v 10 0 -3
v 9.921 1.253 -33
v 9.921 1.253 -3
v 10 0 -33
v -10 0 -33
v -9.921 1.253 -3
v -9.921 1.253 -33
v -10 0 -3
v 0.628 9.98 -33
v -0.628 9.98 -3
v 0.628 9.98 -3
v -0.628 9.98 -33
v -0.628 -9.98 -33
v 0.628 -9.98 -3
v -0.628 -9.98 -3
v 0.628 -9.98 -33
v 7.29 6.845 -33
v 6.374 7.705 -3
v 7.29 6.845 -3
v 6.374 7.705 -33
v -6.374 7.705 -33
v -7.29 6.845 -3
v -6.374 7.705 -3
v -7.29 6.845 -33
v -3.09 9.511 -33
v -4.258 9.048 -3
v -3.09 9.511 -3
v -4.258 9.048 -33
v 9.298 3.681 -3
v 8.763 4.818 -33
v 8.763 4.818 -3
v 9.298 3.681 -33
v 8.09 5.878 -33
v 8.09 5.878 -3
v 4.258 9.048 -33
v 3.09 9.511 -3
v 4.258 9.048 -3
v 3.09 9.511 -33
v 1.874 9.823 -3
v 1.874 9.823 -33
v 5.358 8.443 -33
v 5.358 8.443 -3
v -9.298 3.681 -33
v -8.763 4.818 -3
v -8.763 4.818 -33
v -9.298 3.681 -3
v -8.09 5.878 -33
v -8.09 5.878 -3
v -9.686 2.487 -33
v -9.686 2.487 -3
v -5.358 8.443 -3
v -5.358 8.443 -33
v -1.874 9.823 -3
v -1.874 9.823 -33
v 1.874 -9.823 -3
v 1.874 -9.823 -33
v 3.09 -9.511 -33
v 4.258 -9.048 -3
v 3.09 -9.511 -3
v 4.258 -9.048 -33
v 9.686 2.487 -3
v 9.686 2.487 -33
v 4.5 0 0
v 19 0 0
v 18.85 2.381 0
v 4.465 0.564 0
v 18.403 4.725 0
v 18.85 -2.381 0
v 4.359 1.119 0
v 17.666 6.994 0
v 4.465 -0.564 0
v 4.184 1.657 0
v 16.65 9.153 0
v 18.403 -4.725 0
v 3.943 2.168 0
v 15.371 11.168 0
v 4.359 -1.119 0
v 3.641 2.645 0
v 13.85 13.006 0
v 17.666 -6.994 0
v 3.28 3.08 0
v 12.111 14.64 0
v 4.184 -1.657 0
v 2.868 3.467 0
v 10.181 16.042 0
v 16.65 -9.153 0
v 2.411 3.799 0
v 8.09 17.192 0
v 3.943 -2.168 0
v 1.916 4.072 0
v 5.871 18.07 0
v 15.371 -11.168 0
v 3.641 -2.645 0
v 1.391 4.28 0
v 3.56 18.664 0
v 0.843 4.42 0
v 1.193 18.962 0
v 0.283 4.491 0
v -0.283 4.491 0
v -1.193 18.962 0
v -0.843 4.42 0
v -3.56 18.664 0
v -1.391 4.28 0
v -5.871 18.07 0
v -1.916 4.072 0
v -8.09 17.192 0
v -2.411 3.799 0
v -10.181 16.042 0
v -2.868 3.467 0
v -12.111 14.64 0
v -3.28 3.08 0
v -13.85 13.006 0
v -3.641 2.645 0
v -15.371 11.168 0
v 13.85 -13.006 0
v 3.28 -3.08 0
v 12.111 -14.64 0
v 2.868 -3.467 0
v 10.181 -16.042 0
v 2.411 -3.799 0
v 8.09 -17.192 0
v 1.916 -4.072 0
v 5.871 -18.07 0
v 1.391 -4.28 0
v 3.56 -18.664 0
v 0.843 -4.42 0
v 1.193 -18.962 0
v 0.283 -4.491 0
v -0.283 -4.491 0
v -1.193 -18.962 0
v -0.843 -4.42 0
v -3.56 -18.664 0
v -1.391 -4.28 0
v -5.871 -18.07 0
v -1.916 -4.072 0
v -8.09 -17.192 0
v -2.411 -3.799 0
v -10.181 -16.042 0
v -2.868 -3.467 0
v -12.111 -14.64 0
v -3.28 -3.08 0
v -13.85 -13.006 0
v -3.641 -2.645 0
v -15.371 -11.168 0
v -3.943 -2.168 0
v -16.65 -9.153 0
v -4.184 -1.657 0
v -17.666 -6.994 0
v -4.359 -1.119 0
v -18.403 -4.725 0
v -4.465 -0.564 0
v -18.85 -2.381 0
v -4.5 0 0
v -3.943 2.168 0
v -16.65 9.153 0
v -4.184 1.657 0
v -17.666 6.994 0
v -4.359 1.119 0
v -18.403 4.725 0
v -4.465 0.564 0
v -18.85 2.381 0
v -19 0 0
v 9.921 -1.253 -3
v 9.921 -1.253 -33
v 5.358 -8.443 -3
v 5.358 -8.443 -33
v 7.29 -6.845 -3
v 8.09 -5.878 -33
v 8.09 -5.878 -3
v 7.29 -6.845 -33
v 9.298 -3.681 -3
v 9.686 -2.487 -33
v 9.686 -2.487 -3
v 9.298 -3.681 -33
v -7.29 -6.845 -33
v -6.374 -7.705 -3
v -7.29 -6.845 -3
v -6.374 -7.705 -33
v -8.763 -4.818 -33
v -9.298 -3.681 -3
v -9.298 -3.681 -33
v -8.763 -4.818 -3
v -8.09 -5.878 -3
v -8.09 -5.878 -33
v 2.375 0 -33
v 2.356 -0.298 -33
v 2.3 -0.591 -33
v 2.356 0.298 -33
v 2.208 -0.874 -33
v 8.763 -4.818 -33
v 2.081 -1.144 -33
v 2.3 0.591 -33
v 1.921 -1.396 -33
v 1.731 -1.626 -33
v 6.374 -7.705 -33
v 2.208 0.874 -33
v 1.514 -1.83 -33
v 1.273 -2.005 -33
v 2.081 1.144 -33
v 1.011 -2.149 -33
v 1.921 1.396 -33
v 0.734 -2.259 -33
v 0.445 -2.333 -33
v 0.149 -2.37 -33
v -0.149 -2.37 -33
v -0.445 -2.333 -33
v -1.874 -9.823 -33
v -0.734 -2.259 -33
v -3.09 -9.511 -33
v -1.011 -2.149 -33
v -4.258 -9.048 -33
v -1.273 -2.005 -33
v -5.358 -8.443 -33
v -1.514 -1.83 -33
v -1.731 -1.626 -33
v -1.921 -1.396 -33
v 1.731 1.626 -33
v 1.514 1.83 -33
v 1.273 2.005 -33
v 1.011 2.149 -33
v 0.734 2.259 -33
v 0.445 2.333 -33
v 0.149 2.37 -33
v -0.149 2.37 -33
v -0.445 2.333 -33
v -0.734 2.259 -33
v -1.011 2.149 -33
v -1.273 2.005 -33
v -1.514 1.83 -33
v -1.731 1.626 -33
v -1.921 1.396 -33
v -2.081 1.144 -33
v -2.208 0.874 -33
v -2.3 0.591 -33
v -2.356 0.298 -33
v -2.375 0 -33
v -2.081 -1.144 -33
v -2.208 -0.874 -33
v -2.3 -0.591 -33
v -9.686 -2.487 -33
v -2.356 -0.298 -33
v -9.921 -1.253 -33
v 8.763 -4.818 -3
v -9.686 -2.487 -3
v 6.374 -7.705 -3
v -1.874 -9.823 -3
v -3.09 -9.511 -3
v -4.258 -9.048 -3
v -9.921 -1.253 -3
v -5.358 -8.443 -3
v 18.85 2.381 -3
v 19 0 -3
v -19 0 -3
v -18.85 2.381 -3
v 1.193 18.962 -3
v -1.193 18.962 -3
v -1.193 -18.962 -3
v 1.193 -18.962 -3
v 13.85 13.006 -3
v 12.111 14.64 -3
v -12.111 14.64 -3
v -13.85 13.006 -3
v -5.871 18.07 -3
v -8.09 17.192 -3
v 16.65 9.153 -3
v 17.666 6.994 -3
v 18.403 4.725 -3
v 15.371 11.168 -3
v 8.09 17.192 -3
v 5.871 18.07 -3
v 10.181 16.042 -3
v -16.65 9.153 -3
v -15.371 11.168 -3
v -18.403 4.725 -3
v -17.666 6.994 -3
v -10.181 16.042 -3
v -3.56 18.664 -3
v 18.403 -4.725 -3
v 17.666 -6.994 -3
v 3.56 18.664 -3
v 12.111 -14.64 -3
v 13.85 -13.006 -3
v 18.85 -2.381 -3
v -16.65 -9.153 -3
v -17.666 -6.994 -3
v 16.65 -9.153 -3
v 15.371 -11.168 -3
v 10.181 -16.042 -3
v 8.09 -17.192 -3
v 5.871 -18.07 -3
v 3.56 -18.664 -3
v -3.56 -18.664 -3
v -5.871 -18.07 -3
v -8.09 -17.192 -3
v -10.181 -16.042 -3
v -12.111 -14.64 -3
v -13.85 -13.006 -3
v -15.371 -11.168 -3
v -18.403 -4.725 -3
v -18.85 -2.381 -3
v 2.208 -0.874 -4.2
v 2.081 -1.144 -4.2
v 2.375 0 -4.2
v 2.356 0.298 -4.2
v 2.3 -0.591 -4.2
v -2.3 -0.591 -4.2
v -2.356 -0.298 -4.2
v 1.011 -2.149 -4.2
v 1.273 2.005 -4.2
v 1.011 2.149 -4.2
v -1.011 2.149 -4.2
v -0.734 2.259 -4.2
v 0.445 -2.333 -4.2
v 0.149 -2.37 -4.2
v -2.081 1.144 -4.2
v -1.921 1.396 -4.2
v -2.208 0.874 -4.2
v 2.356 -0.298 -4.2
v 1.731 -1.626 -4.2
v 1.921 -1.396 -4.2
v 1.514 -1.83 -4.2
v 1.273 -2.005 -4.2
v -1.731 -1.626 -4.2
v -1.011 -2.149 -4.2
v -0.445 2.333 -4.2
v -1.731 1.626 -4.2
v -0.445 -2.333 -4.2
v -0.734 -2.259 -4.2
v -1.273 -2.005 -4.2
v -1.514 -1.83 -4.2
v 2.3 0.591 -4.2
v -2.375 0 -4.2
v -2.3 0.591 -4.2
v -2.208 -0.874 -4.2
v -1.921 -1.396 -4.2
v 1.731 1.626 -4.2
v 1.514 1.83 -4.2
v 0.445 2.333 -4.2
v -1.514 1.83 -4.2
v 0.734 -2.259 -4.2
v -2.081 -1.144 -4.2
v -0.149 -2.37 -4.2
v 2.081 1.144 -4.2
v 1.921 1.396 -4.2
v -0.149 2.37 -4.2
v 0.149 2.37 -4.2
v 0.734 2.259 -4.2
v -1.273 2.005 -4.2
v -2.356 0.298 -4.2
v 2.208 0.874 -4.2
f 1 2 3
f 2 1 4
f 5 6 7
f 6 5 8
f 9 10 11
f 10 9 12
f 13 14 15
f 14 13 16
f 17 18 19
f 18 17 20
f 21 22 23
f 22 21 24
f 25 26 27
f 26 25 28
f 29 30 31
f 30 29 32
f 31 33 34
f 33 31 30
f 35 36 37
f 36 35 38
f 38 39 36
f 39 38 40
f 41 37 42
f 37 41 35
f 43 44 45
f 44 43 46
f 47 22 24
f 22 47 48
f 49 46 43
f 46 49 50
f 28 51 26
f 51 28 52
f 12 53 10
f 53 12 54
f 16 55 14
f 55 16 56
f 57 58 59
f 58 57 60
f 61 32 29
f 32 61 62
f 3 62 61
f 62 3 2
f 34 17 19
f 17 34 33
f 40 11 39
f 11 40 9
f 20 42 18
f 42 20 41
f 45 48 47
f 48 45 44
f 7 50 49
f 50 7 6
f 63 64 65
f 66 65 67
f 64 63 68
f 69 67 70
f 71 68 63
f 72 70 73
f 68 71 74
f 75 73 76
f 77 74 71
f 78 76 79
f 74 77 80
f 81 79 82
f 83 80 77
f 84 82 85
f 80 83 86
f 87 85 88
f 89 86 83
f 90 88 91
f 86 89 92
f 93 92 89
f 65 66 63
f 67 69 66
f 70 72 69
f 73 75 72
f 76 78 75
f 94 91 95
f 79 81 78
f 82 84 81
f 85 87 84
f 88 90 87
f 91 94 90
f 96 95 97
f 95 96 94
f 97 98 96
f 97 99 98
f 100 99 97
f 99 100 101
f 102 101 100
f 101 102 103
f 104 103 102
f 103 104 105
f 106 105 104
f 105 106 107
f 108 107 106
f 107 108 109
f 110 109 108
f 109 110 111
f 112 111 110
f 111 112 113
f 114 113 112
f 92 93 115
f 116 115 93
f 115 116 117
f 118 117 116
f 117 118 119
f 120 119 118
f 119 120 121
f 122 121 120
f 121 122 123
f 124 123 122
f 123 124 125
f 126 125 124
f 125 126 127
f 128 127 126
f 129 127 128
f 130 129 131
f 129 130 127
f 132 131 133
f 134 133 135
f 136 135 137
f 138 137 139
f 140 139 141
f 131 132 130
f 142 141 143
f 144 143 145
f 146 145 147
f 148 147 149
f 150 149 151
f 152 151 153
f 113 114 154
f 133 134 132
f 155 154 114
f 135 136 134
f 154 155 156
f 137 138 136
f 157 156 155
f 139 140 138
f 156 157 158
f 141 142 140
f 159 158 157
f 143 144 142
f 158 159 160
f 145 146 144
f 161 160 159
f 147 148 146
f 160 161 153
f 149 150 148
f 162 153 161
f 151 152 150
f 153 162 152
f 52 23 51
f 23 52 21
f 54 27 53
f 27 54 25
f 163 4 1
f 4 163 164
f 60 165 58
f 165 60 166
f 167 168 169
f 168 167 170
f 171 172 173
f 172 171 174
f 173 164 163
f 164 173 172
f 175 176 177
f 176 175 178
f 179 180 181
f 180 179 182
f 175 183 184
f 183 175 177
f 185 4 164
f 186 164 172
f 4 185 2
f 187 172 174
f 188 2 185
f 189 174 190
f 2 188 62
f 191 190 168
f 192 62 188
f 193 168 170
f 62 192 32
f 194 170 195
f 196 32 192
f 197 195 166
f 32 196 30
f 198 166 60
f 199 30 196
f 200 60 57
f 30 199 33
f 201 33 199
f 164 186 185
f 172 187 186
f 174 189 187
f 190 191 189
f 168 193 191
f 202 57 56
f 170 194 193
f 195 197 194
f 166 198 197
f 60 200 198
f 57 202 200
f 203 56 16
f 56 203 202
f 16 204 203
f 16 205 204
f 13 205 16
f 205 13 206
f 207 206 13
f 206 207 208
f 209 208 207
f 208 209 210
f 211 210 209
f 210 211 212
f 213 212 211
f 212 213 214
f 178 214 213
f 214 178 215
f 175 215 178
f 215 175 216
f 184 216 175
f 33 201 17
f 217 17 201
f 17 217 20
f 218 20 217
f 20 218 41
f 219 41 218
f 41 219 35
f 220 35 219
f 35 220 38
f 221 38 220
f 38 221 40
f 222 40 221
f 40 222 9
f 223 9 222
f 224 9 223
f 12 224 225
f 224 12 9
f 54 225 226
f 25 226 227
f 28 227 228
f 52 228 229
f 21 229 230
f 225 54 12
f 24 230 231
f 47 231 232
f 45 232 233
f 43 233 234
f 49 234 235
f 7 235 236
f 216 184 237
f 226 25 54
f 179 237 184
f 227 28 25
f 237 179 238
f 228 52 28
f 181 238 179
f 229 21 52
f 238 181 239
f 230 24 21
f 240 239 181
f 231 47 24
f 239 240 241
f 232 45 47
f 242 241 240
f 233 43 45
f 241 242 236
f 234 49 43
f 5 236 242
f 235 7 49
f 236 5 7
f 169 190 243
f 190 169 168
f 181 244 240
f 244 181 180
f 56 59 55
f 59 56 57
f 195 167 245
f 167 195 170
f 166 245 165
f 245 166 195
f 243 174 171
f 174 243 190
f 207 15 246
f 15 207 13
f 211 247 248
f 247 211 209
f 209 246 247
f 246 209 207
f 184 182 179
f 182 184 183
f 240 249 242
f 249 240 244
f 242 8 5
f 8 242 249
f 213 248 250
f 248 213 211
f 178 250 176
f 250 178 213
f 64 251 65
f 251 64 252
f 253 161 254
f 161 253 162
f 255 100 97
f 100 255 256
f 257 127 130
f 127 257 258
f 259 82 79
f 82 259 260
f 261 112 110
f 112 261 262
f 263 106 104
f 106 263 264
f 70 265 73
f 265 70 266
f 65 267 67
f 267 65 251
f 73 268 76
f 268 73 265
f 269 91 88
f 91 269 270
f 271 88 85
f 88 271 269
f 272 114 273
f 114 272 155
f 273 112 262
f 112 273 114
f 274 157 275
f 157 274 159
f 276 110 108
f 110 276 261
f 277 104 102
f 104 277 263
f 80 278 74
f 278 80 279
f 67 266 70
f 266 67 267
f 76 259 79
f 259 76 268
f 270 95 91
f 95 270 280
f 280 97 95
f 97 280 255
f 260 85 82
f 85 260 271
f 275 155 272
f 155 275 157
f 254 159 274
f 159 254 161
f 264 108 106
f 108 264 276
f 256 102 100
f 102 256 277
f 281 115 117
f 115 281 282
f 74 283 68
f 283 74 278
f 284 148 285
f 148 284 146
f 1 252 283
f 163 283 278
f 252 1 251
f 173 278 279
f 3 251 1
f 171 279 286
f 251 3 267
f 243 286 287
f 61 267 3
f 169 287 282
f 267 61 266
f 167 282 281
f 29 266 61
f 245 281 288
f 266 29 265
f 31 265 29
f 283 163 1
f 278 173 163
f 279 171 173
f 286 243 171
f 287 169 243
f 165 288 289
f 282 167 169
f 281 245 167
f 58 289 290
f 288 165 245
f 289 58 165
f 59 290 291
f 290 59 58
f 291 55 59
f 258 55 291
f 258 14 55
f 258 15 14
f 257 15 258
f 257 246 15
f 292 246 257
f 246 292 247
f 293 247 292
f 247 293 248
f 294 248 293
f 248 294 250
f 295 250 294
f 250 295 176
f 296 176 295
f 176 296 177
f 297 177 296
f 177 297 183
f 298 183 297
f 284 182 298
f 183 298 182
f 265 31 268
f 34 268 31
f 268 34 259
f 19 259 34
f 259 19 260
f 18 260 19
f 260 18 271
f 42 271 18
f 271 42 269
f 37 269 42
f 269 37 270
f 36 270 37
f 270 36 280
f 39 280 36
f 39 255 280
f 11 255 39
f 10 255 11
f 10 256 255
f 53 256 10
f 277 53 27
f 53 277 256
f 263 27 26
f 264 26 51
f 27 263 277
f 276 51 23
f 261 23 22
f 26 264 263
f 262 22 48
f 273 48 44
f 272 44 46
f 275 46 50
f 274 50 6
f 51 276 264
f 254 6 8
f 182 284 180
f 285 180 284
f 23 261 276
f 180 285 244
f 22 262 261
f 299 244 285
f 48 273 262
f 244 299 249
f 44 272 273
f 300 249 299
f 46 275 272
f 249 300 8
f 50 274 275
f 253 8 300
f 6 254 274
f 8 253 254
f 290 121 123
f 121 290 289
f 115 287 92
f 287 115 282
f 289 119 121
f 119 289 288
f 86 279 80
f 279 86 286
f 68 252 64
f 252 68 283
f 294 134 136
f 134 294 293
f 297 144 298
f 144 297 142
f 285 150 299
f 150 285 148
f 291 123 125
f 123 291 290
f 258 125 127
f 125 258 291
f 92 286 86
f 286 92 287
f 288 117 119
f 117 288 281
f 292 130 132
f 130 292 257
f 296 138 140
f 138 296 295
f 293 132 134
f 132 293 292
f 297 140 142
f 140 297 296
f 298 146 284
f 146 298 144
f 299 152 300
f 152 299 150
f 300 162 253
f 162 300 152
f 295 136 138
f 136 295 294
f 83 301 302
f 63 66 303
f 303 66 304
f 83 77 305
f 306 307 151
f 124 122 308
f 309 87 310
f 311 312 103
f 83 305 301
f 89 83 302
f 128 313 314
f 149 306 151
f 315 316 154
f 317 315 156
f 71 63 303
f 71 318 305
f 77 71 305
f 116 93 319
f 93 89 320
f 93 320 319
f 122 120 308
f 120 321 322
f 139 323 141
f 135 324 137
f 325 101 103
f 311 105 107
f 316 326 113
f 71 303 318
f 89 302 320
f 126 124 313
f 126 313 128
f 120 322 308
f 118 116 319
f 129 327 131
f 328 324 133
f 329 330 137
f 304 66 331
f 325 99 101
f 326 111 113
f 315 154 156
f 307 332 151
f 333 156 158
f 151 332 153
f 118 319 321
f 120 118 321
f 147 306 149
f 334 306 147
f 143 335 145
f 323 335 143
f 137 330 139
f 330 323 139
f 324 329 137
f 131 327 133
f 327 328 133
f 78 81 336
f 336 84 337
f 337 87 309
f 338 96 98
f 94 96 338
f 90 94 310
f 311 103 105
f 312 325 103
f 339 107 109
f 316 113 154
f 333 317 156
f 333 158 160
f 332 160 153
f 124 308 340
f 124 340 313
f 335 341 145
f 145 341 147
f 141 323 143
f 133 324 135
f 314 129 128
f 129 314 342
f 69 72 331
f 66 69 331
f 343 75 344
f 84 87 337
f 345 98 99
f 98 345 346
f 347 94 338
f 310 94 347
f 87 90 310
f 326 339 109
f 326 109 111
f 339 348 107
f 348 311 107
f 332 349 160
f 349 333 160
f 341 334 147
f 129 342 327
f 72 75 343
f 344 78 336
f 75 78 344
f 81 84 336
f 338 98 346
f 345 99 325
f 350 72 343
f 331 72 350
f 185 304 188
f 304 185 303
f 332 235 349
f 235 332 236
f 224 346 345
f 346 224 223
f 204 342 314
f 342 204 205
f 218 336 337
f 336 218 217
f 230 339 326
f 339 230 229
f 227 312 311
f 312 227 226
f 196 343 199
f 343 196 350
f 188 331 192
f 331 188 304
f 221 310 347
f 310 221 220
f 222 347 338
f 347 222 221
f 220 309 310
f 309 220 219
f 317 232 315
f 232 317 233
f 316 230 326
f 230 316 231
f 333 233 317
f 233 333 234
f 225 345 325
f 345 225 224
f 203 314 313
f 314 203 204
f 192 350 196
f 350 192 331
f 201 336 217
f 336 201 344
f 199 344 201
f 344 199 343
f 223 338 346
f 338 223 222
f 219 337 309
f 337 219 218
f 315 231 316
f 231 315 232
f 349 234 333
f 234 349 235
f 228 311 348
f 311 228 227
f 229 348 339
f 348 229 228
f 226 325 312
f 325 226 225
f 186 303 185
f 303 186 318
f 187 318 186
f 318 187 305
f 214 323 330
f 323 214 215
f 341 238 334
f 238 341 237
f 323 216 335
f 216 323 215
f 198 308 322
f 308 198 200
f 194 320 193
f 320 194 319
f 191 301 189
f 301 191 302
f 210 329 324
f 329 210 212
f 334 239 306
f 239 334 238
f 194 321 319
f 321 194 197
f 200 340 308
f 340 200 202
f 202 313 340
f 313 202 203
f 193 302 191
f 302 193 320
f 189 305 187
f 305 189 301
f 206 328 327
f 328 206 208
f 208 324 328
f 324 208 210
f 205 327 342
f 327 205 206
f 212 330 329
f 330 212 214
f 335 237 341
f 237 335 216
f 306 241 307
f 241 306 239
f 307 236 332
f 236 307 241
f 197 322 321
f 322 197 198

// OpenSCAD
$fn = 50;


difference() {
	union() {
		translate(v = [0, 0, -33.0000000000]) {
			cylinder(h = 33, r = 10.0000000000);
		}
		translate(v = [0, 0, -3.0000000000]) {
			cylinder(h = 3, r = 19.0000000000);
		}
	}
	union() {
		translate(v = [0, 0, 0]) {
			rotate(a = [0, 0, 0]) {
				difference() {
					union() {
						#translate(v = [0, 0, -33.0000000000]) {
							cylinder(h = 33, r = 2.2500000000);
						}
						#translate(v = [0, 0, -4.2000000000]) {
							cylinder(h = 4.2000000000, r1 = 2.3750000000, r2 = 4.5000000000);
						}
						#translate(v = [0, 0, -33.0000000000]) {
							cylinder(h = 33, r = 2.3750000000);
						}
						#translate(v = [0, 0, -33.0000000000]) {
							cylinder(h = 33, r = 2.2500000000);
						}
					}
					union();
				}
			}
		}
	}
}
